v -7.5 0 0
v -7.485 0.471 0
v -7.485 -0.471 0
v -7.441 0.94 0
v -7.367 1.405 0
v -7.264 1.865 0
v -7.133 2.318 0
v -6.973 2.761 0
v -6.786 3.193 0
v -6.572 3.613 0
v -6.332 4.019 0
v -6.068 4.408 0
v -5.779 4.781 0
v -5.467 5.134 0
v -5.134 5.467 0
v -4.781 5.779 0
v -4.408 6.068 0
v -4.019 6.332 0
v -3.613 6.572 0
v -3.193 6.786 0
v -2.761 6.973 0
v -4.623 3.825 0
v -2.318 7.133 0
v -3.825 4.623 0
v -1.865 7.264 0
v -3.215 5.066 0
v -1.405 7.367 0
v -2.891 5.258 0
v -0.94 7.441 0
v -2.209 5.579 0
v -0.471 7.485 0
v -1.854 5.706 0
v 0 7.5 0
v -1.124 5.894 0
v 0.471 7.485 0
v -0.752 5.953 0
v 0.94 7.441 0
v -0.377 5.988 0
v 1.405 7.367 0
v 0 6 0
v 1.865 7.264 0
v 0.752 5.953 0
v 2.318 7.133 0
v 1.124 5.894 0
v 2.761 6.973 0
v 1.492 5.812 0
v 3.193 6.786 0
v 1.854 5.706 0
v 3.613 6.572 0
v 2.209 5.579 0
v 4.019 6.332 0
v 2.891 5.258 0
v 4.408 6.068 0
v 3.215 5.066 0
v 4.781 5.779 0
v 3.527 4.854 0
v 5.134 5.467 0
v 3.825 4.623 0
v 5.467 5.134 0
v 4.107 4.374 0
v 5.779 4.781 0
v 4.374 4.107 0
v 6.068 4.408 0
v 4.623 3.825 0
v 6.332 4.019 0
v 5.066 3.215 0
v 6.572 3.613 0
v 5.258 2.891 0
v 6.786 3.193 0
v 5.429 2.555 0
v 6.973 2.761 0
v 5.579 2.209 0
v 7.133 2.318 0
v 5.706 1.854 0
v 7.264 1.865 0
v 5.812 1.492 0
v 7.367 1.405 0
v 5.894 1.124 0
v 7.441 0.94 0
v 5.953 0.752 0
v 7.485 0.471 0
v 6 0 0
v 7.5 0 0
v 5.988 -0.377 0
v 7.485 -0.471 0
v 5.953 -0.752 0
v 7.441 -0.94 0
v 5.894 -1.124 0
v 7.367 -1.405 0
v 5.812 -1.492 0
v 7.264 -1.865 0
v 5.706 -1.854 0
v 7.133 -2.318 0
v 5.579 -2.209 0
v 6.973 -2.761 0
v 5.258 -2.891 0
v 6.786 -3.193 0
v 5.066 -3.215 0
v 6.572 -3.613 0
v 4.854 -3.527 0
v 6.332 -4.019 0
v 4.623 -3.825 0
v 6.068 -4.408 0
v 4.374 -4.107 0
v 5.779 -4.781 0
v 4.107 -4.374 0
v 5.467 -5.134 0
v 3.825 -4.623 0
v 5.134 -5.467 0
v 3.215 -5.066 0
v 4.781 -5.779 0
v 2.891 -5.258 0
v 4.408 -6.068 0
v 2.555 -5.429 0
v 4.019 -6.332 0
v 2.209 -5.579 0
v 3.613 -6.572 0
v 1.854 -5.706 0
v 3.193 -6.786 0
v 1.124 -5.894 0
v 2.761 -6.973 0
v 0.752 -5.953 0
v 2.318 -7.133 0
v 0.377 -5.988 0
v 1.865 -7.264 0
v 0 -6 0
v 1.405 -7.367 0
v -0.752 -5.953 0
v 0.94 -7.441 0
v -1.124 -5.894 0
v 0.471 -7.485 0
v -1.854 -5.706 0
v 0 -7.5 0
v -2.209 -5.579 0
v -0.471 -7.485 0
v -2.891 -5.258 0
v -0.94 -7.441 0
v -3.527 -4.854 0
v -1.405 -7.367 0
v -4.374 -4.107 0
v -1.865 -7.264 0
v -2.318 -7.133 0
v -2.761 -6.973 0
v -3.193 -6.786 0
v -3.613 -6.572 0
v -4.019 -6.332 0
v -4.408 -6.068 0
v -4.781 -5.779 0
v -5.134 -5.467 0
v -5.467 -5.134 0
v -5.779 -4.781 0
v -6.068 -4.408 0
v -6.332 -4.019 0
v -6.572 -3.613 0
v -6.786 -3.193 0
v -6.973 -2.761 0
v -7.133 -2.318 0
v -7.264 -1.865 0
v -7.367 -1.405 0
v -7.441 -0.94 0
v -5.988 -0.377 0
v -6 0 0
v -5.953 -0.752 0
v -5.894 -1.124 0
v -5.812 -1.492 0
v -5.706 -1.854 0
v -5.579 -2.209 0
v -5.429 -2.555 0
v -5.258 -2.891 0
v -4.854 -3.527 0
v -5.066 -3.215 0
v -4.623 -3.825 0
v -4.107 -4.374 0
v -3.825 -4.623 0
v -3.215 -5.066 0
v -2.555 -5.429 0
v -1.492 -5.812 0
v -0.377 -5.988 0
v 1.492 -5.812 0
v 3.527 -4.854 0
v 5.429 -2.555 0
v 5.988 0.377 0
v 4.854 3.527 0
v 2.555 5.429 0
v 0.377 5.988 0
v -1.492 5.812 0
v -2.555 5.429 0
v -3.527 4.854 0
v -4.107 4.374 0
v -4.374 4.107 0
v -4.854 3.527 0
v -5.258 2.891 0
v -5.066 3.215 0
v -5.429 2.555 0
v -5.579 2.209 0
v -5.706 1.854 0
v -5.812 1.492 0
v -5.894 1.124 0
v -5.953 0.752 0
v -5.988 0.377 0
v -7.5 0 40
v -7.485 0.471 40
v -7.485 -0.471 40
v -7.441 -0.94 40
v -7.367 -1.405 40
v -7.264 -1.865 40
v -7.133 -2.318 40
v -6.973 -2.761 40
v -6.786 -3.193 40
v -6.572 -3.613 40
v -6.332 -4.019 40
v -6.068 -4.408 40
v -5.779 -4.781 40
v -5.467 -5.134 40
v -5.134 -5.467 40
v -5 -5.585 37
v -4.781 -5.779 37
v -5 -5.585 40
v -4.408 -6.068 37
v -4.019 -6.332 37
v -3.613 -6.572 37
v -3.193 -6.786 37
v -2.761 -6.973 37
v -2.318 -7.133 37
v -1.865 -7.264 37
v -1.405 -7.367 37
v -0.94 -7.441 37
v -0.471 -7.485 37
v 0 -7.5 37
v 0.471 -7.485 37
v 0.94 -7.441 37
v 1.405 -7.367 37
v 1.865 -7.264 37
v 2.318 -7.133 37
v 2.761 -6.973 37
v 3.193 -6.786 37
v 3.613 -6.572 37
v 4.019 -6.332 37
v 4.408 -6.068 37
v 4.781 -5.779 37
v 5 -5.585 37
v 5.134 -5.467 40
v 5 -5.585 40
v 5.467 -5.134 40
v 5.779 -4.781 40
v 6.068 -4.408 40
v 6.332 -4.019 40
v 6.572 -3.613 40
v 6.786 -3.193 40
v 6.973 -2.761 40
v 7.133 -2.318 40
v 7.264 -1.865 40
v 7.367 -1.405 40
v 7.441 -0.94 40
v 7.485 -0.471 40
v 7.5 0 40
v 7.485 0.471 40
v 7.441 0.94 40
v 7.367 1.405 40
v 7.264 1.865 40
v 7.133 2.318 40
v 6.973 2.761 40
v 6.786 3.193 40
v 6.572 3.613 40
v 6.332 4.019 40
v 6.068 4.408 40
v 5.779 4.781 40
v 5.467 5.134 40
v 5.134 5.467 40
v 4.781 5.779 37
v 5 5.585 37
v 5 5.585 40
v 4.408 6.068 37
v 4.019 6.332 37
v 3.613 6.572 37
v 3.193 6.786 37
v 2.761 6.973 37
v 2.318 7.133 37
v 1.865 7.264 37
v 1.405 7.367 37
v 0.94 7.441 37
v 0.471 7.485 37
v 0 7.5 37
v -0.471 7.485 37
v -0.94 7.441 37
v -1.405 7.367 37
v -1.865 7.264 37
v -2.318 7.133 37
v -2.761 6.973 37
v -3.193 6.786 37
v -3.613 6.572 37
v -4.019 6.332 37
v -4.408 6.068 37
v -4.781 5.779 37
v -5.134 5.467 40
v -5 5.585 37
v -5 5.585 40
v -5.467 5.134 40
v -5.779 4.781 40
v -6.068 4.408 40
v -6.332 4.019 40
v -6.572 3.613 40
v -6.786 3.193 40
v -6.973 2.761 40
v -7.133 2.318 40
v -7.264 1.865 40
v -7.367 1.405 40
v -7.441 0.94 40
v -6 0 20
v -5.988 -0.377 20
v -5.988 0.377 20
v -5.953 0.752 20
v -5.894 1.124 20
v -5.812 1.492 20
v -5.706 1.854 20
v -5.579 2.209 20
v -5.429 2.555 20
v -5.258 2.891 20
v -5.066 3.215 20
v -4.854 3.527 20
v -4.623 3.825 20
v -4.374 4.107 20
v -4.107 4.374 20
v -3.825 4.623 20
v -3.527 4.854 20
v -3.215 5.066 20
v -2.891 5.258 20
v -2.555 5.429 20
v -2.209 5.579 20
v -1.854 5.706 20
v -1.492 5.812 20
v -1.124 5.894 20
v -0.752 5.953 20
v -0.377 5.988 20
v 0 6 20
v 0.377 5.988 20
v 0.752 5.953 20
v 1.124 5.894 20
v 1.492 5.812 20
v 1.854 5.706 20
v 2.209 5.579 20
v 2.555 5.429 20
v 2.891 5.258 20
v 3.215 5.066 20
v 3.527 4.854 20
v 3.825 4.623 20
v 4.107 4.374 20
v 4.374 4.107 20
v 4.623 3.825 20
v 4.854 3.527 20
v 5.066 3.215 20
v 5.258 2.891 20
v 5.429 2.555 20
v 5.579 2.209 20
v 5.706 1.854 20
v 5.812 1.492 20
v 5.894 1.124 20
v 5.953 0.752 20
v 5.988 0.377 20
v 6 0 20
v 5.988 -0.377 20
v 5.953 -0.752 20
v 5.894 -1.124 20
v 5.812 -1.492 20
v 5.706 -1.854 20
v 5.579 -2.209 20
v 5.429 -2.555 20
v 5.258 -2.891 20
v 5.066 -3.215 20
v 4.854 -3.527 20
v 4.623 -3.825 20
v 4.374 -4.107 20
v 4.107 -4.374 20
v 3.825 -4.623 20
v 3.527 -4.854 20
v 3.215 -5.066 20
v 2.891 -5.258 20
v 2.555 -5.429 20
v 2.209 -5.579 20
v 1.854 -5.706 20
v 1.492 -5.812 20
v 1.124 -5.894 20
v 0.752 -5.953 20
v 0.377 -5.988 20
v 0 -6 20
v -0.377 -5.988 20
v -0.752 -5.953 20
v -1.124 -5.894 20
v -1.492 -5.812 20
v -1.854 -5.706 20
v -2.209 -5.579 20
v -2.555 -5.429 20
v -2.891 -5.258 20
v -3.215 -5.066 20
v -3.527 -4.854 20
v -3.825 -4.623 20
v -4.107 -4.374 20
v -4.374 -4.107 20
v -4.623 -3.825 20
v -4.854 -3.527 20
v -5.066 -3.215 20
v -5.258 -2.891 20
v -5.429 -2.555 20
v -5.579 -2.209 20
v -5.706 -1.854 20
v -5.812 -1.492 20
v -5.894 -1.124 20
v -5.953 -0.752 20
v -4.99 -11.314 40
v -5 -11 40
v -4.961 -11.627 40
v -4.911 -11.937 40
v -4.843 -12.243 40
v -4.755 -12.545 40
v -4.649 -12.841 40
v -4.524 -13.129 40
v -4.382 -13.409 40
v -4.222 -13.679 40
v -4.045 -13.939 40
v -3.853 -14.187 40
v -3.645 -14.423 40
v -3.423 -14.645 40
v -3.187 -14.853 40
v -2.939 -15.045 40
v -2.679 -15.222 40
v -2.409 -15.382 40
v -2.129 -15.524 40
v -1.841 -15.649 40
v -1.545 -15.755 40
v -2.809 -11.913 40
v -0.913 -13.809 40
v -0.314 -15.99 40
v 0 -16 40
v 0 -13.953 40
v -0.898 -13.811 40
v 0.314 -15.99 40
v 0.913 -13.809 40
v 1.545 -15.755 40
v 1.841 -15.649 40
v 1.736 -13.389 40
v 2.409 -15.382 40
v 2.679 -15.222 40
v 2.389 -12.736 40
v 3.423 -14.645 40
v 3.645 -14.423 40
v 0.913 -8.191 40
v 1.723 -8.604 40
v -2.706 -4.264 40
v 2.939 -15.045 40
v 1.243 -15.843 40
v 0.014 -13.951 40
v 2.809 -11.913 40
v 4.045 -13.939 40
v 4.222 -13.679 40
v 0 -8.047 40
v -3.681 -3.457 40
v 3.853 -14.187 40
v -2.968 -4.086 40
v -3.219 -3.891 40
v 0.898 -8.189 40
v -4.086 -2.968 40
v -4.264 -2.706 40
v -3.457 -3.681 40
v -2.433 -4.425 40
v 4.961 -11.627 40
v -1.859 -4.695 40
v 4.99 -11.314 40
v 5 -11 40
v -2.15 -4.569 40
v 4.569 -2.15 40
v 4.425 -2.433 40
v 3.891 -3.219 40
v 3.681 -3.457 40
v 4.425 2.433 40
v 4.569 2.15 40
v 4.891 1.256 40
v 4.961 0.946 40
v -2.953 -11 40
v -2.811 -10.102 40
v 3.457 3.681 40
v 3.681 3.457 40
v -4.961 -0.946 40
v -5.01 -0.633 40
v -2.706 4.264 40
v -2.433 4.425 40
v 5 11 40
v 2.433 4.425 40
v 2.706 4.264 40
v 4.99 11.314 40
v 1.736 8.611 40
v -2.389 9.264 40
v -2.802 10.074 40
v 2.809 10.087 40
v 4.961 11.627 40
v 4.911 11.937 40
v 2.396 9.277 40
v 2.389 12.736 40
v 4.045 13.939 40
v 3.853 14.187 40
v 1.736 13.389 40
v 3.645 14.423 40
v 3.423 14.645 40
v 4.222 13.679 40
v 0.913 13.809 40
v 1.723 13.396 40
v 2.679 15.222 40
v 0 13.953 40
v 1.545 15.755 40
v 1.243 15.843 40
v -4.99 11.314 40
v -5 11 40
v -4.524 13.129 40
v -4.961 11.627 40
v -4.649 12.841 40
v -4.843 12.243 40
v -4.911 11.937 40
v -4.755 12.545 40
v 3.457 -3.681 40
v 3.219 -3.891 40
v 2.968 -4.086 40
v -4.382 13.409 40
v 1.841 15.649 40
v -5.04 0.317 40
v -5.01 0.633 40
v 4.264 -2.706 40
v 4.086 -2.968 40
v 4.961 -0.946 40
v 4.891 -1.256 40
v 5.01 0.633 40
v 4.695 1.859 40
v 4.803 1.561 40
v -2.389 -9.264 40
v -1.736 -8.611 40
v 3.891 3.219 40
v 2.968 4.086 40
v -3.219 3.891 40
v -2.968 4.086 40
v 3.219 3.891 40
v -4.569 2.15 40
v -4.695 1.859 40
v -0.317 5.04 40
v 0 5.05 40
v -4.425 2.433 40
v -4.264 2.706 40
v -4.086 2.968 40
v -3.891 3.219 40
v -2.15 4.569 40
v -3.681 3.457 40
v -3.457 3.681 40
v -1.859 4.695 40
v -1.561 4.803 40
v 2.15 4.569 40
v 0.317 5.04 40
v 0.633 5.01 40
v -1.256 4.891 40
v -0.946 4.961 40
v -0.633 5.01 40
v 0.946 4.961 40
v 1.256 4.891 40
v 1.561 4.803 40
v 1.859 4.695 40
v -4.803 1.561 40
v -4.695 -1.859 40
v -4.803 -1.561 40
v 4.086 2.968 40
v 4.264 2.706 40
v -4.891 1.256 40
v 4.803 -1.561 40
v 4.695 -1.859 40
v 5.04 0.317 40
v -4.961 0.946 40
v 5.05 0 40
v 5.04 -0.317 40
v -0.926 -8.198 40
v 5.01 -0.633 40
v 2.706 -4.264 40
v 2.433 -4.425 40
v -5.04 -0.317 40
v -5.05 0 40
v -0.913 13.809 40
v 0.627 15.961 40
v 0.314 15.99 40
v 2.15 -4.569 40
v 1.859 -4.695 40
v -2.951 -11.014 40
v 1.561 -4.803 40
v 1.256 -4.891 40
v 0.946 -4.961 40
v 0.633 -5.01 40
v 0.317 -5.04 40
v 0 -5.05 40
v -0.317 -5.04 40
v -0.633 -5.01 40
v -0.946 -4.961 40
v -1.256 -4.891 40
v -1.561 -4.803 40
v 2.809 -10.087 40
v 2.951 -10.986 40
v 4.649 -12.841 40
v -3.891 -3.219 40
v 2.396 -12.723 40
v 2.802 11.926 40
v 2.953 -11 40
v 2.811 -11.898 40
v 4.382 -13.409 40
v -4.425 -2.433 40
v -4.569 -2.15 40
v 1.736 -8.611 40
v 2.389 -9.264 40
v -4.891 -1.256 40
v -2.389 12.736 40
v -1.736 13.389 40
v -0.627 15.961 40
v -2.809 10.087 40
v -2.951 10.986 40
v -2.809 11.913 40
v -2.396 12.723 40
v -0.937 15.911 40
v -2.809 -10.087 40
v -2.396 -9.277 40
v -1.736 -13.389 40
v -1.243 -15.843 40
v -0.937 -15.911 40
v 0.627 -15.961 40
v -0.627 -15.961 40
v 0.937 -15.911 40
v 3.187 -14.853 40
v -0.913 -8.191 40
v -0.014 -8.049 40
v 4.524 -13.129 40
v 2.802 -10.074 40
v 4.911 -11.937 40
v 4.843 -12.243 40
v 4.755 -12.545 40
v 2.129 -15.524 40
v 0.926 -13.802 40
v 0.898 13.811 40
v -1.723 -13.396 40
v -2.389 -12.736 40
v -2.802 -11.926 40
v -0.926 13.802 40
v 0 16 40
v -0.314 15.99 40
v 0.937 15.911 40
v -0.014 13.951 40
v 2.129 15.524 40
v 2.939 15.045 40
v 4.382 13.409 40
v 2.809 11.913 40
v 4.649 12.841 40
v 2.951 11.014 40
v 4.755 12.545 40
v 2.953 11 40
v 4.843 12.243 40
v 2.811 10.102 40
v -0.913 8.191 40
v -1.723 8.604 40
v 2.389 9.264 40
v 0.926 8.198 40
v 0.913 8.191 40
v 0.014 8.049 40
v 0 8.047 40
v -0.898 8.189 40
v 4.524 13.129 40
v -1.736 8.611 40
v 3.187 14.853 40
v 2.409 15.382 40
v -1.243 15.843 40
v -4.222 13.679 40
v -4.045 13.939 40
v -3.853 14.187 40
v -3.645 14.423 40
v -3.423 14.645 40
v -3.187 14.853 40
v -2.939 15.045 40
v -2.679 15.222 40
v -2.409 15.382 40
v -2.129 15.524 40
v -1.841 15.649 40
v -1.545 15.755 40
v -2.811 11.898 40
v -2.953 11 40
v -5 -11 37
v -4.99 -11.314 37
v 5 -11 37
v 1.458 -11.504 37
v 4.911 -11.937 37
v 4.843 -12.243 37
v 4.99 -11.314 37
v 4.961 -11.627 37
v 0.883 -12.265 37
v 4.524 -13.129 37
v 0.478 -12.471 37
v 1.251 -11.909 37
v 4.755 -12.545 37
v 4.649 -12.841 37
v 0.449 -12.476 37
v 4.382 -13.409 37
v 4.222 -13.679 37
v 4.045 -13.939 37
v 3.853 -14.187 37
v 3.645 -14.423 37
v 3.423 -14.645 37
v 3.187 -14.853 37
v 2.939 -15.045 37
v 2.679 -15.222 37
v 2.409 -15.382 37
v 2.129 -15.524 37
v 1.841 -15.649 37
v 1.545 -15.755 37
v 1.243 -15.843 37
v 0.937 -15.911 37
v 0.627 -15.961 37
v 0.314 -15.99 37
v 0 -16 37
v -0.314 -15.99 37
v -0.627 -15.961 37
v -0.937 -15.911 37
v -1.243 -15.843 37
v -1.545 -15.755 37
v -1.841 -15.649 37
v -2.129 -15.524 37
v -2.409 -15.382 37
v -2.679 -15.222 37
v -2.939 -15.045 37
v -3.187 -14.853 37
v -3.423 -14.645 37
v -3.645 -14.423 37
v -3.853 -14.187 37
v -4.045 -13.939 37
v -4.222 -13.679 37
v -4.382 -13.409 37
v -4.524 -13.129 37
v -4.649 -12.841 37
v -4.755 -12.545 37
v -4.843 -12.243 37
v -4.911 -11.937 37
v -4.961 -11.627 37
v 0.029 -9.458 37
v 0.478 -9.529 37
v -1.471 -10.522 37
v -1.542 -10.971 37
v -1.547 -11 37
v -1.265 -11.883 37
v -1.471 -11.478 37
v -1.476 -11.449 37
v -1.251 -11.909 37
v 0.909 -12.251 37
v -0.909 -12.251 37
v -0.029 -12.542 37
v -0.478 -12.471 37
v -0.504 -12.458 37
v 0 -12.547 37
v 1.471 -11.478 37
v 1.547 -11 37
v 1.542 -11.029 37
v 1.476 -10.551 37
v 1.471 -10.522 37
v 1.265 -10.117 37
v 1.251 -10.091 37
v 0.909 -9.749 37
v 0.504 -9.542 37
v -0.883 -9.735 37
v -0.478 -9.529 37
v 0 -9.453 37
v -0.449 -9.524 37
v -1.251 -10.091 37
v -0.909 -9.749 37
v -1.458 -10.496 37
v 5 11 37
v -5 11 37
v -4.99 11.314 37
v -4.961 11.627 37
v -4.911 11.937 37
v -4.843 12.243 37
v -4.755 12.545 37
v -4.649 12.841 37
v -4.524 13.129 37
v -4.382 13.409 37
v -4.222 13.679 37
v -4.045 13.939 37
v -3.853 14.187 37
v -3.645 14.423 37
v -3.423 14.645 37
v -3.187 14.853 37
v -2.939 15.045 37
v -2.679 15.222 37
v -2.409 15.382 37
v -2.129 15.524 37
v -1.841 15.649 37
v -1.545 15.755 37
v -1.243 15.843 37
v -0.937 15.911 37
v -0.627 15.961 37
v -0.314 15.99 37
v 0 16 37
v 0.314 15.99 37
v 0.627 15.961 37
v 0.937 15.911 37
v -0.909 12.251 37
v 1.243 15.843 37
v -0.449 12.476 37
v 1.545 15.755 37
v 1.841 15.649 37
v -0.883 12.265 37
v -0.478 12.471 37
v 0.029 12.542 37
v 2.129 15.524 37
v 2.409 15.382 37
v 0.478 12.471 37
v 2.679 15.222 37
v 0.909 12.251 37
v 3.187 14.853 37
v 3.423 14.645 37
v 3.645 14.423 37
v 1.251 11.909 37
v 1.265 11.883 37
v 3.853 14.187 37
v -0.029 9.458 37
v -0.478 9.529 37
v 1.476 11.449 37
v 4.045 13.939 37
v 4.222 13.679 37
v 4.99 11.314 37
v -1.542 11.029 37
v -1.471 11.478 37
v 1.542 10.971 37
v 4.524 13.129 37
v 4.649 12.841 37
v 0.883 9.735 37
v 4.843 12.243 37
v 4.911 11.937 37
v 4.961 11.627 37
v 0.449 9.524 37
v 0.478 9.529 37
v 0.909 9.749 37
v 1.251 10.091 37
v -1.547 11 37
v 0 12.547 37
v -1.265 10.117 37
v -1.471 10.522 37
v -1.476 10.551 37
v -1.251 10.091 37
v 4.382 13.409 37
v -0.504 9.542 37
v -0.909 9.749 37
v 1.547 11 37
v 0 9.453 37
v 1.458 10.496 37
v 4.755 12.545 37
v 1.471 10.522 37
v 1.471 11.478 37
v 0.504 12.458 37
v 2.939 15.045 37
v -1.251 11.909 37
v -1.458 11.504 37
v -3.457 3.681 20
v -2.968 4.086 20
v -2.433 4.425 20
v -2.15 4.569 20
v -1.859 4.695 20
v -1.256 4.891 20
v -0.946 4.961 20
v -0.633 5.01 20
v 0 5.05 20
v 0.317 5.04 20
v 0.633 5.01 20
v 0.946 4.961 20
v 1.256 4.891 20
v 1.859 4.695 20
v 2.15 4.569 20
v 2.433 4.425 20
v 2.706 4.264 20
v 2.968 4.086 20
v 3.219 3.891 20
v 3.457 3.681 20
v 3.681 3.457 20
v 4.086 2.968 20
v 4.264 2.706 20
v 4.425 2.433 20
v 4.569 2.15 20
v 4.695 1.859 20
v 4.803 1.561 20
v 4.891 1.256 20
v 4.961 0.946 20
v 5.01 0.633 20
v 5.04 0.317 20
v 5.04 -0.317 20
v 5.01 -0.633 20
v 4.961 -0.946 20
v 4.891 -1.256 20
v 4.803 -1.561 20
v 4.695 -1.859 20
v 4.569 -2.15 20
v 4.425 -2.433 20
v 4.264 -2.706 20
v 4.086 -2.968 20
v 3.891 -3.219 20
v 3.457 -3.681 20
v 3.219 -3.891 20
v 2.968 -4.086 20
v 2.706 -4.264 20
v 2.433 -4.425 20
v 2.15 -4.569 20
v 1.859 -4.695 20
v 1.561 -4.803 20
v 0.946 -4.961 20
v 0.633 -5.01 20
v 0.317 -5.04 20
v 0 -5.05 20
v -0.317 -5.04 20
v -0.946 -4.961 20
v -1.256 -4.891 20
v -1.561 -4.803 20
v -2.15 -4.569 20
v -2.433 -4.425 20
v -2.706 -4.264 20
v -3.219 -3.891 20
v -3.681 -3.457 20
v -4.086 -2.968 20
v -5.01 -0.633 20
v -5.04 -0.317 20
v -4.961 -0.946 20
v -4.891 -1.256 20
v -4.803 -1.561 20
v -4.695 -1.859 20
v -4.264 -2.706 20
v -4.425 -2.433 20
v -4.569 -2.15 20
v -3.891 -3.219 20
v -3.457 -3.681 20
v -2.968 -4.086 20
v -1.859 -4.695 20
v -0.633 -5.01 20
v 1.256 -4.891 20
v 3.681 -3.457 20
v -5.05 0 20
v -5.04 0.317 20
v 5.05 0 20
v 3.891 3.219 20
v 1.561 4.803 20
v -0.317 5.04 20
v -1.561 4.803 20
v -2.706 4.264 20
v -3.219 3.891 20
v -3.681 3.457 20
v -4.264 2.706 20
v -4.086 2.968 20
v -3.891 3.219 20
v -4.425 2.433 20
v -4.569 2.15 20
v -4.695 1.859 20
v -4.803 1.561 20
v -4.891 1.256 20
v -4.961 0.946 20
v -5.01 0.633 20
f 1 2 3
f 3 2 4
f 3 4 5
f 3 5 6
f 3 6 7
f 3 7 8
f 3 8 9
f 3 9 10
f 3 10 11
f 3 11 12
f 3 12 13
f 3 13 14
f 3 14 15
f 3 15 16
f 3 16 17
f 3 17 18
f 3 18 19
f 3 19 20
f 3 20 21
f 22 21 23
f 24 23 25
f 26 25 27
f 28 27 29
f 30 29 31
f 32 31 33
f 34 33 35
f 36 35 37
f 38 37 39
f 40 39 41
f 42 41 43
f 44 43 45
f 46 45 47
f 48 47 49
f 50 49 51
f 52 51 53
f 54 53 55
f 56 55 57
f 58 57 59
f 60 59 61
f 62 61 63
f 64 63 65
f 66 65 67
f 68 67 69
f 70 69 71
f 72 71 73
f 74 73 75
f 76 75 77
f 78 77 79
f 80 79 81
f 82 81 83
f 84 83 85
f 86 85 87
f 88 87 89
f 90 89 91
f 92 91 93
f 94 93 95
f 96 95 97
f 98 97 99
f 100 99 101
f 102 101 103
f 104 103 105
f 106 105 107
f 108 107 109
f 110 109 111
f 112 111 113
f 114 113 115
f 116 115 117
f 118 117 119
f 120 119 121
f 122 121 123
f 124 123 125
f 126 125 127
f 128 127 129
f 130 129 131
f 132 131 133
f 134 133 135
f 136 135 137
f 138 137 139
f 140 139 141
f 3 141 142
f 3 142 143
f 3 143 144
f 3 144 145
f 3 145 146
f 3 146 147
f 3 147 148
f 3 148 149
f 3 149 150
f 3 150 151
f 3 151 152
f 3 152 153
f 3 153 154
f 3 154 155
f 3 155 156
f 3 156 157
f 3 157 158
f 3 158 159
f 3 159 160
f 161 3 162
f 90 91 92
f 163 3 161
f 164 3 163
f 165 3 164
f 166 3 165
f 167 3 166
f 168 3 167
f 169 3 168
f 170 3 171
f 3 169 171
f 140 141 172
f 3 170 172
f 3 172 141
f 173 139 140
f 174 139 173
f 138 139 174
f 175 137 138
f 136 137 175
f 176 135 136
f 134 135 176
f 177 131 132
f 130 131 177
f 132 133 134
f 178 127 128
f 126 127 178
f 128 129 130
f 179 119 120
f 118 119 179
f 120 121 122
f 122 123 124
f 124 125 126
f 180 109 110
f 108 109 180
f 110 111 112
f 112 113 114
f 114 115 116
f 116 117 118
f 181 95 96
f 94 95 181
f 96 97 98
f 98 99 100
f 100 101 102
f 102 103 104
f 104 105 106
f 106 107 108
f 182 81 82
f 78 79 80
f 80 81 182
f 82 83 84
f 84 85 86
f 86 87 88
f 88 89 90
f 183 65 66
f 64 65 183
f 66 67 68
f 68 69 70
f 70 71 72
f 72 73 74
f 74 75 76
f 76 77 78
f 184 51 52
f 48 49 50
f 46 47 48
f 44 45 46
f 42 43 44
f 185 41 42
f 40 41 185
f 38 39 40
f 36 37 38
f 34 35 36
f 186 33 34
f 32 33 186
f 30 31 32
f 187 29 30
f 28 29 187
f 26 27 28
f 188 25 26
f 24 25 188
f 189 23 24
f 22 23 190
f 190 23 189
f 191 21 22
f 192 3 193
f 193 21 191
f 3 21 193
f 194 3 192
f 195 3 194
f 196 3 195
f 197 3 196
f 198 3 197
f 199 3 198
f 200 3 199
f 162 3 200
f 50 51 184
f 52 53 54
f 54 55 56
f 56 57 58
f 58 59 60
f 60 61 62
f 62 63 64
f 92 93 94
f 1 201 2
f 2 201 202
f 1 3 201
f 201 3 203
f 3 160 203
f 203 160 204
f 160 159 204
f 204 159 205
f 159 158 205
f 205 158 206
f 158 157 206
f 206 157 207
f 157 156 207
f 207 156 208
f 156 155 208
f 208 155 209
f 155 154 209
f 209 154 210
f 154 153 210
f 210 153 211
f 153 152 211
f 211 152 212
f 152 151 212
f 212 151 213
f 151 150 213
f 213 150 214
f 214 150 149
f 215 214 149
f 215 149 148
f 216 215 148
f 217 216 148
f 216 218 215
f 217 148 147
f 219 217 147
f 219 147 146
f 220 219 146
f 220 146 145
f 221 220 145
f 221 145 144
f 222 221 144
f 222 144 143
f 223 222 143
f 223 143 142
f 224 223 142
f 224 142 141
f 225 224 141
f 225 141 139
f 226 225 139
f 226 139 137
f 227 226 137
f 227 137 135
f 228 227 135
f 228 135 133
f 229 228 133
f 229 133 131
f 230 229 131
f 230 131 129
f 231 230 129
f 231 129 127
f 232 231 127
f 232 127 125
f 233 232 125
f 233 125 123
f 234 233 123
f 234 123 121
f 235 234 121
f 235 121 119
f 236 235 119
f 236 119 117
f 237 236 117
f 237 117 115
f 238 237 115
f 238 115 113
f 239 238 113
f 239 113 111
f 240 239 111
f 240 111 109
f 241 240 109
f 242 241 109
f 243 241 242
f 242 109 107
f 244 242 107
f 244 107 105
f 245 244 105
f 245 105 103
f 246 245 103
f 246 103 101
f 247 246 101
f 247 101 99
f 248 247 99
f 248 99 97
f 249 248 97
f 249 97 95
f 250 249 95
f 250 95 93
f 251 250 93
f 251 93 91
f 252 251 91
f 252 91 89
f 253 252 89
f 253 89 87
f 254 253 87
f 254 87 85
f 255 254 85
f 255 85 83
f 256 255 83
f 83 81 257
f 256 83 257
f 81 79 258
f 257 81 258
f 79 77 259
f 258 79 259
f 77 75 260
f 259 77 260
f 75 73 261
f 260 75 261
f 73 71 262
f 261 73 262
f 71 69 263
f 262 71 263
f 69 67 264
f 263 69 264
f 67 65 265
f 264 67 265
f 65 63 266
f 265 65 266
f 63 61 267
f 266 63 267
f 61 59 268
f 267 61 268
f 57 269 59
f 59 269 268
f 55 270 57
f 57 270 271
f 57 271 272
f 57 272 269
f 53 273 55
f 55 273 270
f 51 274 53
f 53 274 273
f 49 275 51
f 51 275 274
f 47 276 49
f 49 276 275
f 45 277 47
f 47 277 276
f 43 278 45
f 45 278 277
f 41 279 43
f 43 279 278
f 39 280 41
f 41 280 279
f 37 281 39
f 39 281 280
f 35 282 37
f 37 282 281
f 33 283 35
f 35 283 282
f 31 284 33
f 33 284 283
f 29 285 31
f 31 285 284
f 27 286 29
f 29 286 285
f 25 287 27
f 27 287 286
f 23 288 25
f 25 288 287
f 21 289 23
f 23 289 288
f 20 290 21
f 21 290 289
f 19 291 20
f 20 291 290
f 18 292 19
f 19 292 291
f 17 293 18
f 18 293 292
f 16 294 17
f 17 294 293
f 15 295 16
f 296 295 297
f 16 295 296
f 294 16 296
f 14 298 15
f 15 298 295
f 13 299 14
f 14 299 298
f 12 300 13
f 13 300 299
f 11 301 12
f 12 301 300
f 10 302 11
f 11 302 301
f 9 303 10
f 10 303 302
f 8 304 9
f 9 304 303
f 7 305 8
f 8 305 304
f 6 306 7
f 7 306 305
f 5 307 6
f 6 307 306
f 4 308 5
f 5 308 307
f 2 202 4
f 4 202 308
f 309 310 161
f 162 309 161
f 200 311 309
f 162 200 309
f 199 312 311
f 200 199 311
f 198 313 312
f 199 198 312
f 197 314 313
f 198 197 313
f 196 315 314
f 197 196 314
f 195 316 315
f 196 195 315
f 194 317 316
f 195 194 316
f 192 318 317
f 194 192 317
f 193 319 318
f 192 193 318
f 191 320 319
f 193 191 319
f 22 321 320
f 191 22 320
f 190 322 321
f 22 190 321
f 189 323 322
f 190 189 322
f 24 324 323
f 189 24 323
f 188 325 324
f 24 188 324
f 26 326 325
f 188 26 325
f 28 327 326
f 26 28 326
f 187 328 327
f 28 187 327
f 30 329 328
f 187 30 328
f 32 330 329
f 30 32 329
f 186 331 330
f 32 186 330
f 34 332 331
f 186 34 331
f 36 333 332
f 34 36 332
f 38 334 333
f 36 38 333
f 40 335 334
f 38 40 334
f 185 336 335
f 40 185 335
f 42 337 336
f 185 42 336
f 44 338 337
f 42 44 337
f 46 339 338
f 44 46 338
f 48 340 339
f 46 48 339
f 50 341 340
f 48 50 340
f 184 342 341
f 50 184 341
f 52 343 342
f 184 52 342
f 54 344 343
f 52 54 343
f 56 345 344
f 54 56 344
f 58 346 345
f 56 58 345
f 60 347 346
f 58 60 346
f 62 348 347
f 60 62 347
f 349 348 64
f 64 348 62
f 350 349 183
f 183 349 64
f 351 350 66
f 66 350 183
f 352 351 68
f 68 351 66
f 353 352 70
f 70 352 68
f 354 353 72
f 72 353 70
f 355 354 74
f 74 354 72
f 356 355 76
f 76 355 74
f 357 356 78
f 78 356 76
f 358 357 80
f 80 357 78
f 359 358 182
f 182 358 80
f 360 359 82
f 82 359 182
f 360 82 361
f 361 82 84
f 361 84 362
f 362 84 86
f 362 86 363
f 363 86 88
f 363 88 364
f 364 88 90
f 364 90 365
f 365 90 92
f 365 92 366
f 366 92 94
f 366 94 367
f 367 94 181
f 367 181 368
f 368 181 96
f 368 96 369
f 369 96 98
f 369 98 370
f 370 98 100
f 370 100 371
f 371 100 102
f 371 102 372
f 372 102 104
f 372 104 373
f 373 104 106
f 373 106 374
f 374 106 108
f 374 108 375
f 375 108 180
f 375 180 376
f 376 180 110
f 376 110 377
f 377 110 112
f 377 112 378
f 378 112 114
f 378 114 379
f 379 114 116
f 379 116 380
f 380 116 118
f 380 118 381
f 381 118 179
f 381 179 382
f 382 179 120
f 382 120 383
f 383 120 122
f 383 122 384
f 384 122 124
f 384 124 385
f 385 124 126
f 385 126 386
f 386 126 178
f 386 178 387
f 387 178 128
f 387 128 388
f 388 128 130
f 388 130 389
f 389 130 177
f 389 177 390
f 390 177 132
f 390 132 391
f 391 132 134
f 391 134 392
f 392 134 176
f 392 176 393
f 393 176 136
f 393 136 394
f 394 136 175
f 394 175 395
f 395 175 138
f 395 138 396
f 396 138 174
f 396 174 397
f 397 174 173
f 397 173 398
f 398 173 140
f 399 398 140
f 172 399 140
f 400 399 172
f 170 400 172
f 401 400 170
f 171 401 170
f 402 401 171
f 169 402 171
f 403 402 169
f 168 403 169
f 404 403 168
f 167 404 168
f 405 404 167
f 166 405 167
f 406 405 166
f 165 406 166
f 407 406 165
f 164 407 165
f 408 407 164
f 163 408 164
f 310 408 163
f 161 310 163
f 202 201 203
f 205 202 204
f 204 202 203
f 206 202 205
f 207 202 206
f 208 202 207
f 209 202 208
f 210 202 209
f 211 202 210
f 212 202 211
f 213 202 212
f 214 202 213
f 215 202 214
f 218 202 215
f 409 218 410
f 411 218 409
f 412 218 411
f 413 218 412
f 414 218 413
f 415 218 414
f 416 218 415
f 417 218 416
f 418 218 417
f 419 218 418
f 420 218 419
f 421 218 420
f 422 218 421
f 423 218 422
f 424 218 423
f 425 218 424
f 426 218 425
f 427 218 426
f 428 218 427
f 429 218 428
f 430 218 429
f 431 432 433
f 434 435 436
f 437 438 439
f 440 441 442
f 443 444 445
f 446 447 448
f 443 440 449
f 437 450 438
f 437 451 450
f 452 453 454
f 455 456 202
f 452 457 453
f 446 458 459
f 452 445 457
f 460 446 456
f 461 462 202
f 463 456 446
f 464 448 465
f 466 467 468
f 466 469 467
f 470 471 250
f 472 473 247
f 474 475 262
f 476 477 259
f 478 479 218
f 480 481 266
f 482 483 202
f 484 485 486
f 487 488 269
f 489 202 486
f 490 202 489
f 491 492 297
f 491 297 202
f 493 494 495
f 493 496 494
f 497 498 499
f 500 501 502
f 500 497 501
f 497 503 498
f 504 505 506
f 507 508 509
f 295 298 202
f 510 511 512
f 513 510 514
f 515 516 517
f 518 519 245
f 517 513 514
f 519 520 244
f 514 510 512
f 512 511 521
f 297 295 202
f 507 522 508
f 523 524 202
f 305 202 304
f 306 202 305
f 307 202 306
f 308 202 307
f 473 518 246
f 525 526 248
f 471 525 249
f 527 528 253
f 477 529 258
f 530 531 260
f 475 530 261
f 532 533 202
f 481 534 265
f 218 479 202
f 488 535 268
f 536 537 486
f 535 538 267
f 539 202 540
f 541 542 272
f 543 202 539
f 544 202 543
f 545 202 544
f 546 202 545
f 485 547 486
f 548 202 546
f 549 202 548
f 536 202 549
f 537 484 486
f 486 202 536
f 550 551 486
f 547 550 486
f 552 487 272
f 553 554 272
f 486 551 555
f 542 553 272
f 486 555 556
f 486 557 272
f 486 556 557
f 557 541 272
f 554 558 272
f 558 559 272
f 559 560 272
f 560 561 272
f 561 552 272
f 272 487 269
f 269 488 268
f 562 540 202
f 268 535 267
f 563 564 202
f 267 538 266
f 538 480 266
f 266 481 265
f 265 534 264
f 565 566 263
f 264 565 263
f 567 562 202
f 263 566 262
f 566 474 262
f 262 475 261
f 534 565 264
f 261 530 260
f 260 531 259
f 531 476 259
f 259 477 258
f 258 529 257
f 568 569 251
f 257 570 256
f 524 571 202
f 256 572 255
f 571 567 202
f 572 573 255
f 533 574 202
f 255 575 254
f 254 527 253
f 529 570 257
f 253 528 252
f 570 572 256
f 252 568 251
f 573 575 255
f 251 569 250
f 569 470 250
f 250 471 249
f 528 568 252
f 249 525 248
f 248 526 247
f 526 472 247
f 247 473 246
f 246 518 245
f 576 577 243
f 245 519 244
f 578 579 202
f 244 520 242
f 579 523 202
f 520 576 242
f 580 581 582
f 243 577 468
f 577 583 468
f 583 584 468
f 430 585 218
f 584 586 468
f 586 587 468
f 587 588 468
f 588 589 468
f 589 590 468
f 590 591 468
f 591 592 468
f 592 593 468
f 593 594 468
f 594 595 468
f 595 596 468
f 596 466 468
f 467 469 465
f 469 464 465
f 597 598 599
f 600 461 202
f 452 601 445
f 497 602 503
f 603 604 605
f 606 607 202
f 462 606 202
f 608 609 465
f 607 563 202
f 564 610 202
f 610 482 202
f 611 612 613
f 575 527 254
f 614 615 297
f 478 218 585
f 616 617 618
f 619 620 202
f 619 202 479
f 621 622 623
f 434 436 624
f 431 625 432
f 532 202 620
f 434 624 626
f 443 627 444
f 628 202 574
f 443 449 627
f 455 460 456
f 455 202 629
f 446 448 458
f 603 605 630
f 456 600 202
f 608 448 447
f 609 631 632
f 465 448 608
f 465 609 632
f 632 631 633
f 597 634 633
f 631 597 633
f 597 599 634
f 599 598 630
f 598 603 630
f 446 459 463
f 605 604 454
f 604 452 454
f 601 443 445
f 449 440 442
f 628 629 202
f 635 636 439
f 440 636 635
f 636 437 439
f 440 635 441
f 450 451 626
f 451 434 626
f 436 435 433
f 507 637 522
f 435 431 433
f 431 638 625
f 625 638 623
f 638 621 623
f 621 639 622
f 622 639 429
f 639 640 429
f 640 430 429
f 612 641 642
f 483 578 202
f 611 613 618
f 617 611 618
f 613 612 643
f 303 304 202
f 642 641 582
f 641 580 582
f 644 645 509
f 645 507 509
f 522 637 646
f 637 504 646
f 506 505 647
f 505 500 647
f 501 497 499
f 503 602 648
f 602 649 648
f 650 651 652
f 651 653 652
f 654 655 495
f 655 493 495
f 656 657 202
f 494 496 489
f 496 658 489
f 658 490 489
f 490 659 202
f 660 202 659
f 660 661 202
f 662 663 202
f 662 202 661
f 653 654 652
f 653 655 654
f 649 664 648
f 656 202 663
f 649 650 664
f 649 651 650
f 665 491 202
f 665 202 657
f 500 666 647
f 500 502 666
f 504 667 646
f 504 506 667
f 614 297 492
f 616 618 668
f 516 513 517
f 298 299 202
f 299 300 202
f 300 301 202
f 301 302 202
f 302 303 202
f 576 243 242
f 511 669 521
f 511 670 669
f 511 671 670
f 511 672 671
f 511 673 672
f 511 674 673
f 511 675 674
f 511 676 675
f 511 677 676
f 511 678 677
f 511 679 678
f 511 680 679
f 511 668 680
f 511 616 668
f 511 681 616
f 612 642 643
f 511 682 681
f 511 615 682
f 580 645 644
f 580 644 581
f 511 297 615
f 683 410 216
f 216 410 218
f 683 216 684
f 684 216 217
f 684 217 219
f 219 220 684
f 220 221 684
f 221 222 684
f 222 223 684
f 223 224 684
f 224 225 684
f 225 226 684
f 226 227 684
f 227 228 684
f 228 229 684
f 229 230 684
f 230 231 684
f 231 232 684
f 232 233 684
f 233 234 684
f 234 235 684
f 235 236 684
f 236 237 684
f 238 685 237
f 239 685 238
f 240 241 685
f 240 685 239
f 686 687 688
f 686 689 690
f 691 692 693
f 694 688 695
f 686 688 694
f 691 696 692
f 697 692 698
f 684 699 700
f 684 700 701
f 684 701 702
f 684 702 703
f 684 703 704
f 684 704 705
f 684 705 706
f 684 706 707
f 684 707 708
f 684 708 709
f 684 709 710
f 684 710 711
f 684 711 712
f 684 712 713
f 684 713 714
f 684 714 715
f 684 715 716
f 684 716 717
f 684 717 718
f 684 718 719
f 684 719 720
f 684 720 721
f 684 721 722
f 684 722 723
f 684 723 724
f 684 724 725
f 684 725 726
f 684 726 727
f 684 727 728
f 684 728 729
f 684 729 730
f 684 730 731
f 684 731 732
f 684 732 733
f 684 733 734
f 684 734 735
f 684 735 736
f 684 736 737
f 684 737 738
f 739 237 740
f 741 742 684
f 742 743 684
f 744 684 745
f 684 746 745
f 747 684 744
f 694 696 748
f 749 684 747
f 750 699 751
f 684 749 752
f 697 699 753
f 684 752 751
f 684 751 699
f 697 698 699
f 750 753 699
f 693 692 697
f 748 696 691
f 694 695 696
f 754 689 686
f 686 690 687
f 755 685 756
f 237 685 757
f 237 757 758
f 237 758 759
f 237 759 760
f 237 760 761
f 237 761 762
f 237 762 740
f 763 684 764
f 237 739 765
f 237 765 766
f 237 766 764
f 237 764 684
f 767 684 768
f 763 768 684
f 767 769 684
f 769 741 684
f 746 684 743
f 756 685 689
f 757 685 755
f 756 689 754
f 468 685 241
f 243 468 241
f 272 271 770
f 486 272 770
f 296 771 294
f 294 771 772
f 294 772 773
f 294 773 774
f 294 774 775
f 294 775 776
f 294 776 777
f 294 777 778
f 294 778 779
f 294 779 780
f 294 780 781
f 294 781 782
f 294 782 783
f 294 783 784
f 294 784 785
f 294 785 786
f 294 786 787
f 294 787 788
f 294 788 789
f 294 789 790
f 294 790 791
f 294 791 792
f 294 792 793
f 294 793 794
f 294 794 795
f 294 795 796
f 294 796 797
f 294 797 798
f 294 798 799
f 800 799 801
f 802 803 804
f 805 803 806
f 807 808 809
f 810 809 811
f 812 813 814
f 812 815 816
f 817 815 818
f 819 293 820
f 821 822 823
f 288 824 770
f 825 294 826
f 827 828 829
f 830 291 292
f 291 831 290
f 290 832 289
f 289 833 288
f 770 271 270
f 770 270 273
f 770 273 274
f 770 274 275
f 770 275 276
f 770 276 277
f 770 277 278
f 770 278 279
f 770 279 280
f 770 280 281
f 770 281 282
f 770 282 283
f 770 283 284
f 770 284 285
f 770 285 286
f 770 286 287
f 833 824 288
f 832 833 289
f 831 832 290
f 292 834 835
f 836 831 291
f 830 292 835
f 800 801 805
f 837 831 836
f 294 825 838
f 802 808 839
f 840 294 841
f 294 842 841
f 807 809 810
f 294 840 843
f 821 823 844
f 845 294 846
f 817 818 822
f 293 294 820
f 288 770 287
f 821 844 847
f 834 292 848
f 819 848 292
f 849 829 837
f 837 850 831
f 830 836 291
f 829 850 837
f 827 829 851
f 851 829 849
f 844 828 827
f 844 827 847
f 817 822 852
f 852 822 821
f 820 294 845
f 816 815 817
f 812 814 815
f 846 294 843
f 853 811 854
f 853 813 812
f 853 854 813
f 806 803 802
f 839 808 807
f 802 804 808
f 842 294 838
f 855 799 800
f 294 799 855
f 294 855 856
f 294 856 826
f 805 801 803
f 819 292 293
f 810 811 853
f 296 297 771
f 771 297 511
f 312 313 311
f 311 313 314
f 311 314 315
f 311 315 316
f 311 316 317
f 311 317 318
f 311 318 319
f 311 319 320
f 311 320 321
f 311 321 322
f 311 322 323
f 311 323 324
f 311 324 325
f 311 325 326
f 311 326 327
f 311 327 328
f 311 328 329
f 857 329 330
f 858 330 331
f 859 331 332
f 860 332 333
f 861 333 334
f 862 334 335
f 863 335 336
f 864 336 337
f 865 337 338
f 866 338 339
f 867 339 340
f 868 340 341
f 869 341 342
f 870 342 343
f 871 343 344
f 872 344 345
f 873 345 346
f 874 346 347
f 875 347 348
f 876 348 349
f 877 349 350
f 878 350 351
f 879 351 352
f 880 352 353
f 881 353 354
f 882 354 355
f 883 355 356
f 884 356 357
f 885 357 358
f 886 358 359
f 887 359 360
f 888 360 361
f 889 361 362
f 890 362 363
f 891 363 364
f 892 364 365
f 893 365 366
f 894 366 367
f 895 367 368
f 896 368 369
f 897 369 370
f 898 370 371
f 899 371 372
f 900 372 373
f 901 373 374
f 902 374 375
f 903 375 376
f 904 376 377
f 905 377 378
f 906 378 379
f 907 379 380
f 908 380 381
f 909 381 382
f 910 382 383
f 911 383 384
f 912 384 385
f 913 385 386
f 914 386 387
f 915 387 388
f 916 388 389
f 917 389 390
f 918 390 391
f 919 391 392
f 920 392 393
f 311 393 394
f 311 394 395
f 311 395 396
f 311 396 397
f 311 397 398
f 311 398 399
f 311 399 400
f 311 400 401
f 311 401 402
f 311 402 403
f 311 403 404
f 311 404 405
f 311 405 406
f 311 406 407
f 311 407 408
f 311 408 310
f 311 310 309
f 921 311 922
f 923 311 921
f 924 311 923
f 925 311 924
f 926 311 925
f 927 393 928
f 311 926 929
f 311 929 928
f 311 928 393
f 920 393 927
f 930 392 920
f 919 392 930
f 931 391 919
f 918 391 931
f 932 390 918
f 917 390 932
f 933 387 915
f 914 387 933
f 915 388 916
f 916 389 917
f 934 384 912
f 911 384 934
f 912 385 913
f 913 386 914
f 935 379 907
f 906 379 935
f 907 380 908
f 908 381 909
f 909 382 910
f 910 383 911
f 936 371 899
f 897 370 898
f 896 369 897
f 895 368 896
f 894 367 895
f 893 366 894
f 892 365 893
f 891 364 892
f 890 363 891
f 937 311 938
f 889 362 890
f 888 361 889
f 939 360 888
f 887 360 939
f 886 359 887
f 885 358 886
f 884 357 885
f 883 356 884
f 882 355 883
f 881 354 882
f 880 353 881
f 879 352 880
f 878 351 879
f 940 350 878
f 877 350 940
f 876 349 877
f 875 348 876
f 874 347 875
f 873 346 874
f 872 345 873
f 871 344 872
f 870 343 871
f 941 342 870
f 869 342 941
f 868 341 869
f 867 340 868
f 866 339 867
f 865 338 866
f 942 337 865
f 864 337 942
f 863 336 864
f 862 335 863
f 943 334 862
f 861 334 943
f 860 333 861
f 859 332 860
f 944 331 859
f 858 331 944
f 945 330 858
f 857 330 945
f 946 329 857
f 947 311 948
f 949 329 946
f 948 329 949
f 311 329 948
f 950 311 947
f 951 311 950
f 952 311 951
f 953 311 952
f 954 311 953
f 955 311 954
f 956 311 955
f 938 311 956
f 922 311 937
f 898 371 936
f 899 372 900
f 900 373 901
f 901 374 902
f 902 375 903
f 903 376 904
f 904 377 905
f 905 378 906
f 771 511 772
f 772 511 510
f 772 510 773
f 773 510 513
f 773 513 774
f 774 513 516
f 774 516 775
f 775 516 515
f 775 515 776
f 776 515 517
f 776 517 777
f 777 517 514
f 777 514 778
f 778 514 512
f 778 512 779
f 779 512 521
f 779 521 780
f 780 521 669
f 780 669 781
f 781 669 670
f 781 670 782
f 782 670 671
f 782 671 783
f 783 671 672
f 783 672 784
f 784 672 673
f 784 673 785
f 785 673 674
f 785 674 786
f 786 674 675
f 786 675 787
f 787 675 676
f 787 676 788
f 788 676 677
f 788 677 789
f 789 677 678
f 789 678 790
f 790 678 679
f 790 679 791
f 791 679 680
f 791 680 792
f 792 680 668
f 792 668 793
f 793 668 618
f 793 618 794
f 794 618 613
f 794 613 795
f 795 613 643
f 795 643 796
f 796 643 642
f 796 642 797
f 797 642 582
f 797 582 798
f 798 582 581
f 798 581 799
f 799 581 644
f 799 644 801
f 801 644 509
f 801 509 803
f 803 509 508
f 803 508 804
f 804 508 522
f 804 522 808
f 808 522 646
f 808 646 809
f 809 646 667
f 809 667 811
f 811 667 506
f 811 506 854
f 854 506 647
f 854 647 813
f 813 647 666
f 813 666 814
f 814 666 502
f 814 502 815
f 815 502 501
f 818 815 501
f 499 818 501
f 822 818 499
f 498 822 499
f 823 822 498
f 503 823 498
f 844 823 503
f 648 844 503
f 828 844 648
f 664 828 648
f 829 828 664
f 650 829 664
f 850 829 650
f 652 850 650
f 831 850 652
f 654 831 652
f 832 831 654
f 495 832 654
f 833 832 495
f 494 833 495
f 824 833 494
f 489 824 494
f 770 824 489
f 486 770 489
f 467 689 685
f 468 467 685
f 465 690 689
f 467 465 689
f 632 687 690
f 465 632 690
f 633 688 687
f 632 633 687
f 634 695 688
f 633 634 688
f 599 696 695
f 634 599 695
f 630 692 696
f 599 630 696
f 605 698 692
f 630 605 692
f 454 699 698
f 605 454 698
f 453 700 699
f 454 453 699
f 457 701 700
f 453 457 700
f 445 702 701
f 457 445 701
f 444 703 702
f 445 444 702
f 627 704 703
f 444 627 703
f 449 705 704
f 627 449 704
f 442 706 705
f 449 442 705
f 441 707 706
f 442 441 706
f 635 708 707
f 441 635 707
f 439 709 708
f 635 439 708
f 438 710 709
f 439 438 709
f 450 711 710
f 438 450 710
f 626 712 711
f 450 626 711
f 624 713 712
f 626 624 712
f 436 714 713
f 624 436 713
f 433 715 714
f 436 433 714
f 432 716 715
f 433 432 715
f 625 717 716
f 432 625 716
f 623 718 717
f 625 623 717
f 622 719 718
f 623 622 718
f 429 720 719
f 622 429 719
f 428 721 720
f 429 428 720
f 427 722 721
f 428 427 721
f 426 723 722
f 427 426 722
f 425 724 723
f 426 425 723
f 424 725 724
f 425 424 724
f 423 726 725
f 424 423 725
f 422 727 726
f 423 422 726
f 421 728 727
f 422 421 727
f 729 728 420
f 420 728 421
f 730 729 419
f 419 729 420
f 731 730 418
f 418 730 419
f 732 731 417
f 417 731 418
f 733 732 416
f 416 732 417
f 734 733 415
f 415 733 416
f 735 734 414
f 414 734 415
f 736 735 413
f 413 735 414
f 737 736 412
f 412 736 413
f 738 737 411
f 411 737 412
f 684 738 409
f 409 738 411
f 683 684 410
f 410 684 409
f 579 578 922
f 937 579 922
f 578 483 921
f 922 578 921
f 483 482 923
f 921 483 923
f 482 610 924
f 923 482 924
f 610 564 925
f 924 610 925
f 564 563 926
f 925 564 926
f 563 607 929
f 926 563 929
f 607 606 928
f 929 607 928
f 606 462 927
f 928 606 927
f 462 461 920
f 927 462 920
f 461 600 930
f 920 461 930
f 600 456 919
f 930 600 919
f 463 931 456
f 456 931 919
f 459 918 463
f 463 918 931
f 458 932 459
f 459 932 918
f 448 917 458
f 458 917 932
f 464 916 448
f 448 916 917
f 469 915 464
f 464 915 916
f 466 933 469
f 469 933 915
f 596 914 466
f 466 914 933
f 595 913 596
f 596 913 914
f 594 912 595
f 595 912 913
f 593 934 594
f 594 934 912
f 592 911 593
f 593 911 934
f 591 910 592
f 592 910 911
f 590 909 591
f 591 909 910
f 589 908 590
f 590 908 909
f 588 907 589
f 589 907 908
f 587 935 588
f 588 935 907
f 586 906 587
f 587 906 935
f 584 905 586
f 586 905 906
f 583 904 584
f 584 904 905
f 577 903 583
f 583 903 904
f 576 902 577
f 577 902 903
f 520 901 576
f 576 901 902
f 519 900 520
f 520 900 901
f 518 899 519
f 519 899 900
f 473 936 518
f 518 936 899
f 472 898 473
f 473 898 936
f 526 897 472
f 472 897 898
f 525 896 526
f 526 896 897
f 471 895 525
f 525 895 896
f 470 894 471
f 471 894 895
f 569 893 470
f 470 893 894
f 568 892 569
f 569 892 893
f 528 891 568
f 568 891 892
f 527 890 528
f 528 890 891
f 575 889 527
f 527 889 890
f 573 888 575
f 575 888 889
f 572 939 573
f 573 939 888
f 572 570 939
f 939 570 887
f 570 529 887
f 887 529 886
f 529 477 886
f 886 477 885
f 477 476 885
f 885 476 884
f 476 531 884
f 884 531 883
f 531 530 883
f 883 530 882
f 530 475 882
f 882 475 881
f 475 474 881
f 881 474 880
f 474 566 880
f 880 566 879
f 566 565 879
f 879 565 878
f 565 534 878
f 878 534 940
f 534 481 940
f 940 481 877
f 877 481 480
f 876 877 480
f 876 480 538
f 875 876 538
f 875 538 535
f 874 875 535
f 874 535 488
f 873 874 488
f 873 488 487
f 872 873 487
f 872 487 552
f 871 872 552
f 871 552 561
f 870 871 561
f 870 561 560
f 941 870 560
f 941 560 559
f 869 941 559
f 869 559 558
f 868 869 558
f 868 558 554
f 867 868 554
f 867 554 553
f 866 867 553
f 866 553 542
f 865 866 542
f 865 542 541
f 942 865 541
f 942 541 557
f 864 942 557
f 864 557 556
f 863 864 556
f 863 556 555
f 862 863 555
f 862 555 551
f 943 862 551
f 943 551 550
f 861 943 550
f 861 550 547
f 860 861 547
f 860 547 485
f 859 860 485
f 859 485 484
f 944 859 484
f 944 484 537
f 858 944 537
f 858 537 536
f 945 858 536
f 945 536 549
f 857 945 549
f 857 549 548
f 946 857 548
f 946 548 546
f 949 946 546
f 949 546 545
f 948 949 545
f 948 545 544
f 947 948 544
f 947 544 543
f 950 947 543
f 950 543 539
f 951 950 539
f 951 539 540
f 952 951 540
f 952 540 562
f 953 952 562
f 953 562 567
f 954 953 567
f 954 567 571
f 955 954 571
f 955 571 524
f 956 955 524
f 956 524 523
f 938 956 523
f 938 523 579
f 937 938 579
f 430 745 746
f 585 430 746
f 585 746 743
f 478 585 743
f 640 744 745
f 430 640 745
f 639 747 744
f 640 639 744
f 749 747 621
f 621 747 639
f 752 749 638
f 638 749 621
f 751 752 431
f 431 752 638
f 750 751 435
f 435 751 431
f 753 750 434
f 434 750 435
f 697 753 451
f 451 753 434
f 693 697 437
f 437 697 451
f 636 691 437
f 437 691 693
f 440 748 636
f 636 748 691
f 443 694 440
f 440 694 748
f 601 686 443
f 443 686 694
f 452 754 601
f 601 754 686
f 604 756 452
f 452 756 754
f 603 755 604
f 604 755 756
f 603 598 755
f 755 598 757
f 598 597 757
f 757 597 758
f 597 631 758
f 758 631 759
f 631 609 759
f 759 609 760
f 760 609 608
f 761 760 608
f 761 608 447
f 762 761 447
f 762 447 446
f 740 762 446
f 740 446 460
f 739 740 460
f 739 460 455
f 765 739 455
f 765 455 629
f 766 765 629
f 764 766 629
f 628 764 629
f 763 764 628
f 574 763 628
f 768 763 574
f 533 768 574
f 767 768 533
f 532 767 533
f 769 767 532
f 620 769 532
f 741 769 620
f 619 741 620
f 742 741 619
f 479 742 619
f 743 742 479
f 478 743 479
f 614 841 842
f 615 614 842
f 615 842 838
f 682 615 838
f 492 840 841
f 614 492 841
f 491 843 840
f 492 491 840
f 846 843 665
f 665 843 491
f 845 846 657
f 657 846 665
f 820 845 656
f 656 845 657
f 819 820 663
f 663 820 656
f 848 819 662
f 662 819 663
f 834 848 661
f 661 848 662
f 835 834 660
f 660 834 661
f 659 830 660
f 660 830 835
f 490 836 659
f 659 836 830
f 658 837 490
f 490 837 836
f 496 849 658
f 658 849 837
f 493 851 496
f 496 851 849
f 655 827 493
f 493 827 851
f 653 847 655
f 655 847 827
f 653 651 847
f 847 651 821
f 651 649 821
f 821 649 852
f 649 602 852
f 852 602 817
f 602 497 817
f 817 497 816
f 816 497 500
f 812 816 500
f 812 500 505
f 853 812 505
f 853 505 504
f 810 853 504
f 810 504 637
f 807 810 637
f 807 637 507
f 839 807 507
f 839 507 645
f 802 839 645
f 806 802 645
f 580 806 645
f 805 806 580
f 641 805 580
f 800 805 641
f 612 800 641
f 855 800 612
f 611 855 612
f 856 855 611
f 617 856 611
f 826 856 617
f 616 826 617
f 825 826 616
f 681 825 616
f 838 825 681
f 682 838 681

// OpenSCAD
difference()
{
	union()
	{
		cylinder(40,7.5,7.5,$fn=100);
		translate([0,-11,37]){cylinder(3,5,5,$fn=100);}
		translate([0,11,37]){cylinder(3,5,5,$fn=100);}
		translate([-5,-11,37]){cube([10,22,3]);}
}

	translate([0,0,-.1]){cylinder(20.1,6,6,$fn=100);}
	translate([0,0,19.9]){cylinder(20.2,5.05,5.05,$fn=100);}
	translate([0,-11,37-.1]){cylinder(3.2,1.5,3,$fn=20);}
	translate([0,11,37-.1]){cylinder(3.2,1.5,3,$fn=20);}
}
